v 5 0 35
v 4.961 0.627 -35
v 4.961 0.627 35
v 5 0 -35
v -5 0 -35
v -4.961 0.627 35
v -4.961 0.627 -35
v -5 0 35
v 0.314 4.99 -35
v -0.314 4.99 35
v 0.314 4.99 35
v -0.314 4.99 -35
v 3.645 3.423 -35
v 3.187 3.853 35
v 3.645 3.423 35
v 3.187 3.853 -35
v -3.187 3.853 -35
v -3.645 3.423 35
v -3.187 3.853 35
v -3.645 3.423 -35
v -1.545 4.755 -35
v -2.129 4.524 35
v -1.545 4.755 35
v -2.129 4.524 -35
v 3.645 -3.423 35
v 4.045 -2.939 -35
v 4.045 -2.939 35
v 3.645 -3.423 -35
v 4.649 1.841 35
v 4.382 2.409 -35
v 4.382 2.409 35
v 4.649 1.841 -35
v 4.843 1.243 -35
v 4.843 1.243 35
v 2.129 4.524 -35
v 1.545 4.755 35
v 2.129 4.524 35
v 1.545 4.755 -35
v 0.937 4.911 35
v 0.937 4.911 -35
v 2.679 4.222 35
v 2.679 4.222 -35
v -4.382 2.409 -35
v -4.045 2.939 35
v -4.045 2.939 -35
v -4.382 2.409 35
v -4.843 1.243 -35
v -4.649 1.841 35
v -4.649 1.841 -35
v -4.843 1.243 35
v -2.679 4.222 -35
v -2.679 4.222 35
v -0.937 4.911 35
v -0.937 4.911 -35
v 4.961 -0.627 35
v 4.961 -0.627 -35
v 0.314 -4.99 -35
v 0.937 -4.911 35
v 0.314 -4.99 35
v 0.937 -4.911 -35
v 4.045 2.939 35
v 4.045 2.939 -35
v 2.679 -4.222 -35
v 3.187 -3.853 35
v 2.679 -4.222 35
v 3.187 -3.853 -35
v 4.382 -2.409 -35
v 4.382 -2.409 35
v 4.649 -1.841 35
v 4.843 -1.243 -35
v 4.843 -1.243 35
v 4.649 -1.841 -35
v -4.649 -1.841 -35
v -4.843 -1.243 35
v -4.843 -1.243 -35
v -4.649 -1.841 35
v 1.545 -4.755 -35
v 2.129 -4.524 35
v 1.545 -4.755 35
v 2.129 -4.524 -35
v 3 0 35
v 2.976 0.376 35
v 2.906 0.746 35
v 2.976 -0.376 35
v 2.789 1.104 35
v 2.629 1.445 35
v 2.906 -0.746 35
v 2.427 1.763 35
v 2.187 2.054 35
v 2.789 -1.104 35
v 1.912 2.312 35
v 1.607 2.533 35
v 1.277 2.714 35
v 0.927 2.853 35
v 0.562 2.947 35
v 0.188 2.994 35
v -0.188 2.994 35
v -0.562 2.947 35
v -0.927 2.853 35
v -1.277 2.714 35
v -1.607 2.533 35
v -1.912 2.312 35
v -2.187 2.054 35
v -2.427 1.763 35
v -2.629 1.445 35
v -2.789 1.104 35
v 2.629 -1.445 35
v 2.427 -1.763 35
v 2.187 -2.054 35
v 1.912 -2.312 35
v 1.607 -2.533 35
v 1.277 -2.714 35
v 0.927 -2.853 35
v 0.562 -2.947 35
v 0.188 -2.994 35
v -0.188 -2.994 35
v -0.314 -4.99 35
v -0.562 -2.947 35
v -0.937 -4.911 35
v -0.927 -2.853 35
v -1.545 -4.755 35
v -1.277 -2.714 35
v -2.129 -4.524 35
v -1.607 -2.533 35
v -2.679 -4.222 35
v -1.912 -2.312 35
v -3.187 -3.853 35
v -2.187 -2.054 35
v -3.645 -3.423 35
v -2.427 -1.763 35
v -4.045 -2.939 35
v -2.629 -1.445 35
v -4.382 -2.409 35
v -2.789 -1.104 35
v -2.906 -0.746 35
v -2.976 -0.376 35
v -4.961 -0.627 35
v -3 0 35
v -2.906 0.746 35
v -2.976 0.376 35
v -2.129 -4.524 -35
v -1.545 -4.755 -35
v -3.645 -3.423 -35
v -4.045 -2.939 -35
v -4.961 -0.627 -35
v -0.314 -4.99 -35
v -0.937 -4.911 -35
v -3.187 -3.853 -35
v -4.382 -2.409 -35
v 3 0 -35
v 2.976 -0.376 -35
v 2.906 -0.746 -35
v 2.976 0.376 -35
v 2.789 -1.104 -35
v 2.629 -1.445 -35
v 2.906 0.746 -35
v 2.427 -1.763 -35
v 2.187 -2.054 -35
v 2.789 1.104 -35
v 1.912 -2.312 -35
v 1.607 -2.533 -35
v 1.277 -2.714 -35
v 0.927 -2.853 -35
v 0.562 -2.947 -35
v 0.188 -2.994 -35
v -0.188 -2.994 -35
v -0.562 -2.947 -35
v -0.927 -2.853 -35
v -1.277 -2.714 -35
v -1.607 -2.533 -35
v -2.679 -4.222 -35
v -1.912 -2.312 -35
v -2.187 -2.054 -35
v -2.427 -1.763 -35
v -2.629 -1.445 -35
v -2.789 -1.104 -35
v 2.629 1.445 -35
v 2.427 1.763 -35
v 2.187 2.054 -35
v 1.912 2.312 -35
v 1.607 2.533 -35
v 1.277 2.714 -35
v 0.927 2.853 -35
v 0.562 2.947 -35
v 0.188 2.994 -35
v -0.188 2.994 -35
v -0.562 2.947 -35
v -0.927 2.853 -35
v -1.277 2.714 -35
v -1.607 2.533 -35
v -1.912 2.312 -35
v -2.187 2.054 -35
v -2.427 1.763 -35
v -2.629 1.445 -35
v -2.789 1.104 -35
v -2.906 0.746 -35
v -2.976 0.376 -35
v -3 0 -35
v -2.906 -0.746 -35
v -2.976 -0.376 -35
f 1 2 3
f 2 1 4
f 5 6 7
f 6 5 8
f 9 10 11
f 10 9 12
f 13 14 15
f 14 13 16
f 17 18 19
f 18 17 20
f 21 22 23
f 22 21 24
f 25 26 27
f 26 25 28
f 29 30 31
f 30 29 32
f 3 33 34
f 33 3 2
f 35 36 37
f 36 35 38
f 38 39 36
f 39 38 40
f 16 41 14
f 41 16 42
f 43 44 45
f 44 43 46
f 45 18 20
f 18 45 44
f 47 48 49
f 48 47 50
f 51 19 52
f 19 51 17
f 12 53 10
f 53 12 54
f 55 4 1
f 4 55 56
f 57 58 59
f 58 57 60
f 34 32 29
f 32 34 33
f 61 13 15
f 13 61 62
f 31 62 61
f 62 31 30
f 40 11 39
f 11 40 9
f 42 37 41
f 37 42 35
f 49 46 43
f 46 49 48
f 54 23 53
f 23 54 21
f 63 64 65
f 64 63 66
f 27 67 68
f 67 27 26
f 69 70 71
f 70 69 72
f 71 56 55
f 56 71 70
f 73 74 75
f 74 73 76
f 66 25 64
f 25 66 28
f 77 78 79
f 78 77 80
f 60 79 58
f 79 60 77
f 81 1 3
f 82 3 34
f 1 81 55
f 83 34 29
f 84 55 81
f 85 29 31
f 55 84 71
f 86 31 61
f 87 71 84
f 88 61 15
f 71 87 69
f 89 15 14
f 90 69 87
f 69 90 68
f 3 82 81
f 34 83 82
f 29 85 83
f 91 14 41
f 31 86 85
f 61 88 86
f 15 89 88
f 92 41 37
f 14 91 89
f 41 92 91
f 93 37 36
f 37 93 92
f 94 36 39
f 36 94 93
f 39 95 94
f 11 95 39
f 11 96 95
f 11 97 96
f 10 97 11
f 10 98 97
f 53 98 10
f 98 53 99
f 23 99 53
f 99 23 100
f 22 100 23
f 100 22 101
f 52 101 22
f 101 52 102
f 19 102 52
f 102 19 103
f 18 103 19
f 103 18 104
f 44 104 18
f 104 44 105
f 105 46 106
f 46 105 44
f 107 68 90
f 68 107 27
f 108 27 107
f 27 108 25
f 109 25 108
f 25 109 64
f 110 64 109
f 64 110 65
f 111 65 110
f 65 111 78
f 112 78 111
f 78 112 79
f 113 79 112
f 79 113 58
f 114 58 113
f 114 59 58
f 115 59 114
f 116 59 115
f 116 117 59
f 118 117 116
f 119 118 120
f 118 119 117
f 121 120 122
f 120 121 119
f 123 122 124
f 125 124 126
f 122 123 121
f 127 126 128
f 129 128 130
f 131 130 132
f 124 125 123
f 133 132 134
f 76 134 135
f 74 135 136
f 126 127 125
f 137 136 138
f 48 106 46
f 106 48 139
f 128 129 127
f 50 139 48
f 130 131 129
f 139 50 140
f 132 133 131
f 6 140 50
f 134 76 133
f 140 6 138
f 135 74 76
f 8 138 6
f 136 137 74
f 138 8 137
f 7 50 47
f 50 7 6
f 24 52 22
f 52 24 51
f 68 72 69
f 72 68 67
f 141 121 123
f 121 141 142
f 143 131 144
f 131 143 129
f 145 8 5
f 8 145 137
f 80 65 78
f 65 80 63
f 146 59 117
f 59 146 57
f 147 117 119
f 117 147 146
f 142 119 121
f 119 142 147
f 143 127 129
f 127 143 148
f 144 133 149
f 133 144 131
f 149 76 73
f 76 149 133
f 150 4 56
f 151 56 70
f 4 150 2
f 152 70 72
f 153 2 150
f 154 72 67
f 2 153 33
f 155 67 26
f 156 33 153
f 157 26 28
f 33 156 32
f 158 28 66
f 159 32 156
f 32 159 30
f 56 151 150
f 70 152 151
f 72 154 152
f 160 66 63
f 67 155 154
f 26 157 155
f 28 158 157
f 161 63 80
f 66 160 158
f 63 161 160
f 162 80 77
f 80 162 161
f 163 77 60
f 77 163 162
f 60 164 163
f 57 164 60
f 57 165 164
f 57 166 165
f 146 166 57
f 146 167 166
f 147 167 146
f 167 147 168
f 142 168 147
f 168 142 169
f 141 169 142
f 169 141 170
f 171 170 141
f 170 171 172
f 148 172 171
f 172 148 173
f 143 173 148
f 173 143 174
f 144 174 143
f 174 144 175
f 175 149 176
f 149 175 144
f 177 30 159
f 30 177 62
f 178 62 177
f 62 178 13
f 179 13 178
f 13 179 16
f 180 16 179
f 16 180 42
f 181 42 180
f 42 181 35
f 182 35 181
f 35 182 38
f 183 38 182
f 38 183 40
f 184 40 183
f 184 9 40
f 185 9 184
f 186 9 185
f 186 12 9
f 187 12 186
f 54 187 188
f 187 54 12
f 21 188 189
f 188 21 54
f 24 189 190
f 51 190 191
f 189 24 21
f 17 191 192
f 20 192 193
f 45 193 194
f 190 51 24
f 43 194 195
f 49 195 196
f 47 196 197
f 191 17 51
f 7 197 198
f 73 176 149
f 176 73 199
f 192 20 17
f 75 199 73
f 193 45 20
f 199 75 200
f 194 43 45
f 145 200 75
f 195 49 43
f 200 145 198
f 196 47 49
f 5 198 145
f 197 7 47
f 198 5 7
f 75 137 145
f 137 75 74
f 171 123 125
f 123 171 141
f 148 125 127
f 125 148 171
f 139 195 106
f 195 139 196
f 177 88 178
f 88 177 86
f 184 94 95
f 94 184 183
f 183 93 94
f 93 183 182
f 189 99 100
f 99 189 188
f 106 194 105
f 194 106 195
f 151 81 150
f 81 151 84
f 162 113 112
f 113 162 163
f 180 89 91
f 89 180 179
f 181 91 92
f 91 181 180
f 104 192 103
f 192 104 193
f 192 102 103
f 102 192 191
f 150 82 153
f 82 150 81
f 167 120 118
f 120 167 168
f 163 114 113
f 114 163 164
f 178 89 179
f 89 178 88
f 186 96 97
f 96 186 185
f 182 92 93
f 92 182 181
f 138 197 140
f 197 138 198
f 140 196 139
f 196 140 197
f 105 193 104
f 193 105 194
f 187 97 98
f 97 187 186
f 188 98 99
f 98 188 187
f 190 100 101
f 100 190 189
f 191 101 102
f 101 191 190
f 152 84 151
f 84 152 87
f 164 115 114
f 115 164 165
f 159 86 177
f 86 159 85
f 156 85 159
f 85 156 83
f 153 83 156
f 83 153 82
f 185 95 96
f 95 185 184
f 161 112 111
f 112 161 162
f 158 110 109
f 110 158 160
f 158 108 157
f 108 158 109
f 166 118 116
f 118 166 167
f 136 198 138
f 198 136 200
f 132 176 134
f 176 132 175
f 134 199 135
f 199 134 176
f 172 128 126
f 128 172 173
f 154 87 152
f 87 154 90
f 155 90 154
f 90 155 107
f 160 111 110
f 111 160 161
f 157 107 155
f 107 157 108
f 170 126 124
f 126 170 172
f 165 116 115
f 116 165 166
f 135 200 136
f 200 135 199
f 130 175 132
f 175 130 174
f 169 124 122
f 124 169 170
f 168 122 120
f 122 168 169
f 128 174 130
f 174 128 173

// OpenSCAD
$fn = 50;


difference() {
	union() {
		translate(v = [0, 0, -35.0000000000]) {
			cylinder(h = 70, r = 5.0000000000);
		}
	}
	union() {
		translate(v = [0, 0, -100.0000000000]) {
			cylinder(h = 200, r = 3.0000000000);
		}
	}
}
